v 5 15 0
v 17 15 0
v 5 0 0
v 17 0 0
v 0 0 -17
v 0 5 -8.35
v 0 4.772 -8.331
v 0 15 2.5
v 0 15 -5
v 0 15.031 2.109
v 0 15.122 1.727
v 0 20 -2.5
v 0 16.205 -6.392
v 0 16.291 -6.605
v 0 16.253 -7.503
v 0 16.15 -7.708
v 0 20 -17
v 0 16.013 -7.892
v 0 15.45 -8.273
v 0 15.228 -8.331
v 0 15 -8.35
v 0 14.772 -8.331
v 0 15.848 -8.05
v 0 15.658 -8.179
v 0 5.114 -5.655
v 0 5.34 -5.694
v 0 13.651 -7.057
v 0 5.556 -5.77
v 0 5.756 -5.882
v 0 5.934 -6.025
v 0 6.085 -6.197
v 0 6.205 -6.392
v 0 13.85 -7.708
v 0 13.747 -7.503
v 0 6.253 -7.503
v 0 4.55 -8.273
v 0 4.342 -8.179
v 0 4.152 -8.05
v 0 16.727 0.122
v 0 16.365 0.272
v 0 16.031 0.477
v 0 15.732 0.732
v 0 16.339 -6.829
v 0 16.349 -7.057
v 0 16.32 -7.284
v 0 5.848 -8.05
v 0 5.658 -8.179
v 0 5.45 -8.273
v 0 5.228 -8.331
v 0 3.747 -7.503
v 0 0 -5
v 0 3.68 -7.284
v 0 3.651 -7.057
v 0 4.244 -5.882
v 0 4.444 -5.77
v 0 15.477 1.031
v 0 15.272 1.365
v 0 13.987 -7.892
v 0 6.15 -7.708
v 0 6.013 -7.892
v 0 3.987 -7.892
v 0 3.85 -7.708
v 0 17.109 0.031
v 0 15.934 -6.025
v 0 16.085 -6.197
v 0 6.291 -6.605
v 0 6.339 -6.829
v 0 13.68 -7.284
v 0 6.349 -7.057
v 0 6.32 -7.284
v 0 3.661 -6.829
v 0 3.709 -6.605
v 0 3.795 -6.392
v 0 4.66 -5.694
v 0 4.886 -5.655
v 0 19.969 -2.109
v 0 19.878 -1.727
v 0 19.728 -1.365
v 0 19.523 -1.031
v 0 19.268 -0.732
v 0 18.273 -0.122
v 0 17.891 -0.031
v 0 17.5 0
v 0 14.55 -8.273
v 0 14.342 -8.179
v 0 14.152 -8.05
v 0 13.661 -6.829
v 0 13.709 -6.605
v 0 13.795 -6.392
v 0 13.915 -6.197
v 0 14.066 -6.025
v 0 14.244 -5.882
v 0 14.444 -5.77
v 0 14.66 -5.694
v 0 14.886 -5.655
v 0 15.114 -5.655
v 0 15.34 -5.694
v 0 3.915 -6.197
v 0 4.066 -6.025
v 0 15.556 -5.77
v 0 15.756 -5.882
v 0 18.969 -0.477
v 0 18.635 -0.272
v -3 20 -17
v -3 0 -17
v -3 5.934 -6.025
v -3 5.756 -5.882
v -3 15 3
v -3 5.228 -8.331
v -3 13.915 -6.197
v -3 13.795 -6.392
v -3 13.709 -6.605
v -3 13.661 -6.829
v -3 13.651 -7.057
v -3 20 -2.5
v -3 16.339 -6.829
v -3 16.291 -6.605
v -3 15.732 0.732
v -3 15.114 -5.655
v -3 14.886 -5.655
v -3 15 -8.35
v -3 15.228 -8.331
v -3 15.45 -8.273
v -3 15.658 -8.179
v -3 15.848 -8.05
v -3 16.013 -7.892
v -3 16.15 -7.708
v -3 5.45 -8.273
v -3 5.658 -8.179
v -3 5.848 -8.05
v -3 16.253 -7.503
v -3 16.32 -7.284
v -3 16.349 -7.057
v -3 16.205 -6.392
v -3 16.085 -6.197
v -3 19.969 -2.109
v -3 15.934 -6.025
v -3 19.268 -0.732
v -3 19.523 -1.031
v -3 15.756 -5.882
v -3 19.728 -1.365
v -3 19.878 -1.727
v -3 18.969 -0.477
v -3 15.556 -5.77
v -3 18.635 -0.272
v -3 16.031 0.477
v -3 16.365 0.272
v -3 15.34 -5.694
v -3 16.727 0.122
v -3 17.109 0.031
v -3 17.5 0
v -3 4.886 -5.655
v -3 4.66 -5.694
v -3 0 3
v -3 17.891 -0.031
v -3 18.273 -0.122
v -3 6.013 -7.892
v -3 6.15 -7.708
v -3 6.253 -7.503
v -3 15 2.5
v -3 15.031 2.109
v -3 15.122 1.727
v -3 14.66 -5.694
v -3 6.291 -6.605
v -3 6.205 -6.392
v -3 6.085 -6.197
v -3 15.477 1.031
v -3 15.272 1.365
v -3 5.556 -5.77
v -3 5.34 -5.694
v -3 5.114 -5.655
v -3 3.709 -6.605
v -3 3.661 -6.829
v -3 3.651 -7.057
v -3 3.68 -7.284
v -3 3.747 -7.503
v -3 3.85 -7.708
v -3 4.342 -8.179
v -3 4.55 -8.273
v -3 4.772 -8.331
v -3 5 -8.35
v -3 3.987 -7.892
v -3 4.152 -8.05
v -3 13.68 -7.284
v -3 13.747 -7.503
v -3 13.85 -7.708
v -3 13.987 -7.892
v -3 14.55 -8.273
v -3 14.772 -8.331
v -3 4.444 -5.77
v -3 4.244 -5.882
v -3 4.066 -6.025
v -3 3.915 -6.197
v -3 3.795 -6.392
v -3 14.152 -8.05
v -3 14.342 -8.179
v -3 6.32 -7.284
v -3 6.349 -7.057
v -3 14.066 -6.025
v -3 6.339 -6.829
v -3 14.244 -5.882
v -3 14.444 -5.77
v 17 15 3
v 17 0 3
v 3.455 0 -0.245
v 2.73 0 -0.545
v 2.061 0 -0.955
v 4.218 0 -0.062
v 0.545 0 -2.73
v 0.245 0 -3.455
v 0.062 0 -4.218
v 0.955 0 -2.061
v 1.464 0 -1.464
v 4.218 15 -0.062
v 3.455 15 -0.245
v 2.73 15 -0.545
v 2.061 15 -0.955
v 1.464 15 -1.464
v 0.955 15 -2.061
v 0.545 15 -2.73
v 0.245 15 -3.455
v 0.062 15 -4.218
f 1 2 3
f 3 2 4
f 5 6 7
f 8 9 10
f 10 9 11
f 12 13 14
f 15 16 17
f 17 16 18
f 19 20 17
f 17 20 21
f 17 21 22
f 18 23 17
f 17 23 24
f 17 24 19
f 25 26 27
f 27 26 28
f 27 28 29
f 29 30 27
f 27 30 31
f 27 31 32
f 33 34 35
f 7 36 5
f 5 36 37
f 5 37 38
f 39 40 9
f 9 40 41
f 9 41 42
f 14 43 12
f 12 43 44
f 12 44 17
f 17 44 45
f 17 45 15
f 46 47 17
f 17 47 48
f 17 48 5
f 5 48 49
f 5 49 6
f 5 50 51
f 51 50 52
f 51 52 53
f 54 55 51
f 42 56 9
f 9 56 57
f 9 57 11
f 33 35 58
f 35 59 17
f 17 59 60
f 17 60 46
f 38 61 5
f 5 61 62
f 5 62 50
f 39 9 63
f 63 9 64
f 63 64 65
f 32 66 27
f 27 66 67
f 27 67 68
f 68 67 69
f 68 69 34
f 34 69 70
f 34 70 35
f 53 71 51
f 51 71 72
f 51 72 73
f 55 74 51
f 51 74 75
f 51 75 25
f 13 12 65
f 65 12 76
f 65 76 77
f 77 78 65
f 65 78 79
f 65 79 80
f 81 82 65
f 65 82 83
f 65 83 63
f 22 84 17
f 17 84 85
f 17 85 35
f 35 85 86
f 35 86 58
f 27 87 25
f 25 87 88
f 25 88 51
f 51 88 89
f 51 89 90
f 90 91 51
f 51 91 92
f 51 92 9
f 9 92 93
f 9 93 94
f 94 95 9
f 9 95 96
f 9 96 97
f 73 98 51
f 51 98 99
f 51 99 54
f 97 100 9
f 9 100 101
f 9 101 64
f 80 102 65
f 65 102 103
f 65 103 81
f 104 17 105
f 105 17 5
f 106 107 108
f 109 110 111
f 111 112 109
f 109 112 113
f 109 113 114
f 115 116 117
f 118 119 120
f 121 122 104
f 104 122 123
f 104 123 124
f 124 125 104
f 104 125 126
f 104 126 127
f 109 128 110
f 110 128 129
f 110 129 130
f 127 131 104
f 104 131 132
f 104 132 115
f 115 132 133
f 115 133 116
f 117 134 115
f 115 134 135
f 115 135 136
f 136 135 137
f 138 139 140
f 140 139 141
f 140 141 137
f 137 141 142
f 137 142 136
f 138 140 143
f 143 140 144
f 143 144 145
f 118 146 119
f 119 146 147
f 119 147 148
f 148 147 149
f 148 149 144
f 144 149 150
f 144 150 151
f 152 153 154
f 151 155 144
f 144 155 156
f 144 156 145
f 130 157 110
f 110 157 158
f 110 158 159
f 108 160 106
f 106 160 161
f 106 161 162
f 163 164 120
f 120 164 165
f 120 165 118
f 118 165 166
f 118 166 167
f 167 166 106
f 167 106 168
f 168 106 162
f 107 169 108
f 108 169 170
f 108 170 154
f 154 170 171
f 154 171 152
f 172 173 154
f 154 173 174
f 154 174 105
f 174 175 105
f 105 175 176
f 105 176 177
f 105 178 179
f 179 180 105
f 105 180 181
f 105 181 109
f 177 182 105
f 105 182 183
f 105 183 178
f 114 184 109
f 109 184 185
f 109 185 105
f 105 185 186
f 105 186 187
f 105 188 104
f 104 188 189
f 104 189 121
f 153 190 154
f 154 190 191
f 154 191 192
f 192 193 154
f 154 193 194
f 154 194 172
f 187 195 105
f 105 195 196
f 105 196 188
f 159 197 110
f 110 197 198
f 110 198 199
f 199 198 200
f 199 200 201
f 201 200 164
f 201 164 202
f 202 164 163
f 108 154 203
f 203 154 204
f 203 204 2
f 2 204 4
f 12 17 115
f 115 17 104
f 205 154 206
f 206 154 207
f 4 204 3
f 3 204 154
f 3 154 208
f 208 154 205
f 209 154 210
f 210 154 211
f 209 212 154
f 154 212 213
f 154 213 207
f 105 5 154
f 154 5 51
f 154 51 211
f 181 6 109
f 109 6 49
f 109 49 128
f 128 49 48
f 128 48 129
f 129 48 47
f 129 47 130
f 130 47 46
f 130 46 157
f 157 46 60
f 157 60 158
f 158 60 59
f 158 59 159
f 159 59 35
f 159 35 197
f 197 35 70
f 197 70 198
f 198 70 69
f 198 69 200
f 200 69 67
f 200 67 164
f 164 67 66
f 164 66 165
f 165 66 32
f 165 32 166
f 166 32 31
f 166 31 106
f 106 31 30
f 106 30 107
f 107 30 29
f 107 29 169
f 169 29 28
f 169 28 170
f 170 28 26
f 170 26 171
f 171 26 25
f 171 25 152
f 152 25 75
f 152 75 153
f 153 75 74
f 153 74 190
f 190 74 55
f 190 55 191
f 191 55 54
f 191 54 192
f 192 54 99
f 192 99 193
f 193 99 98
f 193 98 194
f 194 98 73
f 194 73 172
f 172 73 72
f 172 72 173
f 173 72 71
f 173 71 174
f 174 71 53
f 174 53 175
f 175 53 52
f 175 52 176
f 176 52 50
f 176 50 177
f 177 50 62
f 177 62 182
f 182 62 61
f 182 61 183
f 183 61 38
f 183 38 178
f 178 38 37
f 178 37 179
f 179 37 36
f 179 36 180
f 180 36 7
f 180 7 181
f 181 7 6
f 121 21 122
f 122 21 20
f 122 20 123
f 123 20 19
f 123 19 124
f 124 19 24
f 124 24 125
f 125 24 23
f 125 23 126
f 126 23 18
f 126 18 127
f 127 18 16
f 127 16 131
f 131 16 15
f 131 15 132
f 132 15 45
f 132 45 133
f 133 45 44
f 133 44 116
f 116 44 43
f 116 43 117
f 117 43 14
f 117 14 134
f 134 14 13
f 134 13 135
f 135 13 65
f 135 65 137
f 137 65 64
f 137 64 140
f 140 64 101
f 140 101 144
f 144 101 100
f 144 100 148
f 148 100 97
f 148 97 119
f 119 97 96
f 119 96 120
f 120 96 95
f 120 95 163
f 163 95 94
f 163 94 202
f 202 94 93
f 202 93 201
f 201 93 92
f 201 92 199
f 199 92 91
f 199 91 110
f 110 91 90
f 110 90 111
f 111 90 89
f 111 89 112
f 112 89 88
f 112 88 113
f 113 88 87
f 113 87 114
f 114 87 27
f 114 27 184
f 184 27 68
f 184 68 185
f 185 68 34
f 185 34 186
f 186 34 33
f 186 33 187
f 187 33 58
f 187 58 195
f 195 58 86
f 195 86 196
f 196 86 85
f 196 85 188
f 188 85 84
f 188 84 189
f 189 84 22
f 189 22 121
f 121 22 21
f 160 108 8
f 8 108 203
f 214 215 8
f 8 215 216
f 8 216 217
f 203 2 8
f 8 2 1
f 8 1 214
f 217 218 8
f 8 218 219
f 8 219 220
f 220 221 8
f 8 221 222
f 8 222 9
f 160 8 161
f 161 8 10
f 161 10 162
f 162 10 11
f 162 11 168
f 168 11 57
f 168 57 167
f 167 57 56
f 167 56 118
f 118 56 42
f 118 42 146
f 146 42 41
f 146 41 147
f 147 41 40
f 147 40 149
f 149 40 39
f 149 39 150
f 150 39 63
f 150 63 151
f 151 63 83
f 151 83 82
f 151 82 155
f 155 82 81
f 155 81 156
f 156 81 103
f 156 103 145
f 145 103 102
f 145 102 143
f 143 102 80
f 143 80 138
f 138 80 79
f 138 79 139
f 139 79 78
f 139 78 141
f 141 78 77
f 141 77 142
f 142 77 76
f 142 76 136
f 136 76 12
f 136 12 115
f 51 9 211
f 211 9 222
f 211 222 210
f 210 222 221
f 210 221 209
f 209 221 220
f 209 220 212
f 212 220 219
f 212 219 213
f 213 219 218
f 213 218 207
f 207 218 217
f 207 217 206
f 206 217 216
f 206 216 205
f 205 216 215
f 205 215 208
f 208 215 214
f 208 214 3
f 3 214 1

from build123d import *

# Parameters (mm, degrees)
BOSS_EXTRUDE1_DEPTH            = 20
F_2_7_2_7_DIAMETER_HOLE1_D     = 2.7
F_2_7_2_7_DIAMETER_HOLE1_DEPTH = 15
F_2_7_2_7_DIAMETER_HOLE1_TIP   = 0.811161836
SKETCH4_W                      = 20
SKETCH4_H                      = 3
CUT_EXTRUDE1_DEPTH             = 5
FILLET2_R                      = 2.5
FILLET3_R                      = 5


with BuildPart() as part:
    # Sketch1 → Boss-Extrude1 (new body)
    with BuildSketch(Plane(origin=(0, 0, 0), x_dir=(1, 0, 0), z_dir=(0, 1, 0))):
        Polygon((0, 0), (0, 17), (-3, 17), (-3, -3), (17, -3), (17, 0), align=None)
    extrude(amount=BOSS_EXTRUDE1_DEPTH)

    # Ø2.7 (2.7) Diameter Hole1
    with Locations(Plane(origin=(0, 0, 0), x_dir=(0, 0, -1), z_dir=(1, 0, 0))):
        with Locations((7, 5), (7, 15)):
            Hole(F_2_7_2_7_DIAMETER_HOLE1_D / 2, depth=F_2_7_2_7_DIAMETER_HOLE1_DEPTH)
            with Locations((0, 0, -(F_2_7_2_7_DIAMETER_HOLE1_DEPTH + F_2_7_2_7_DIAMETER_HOLE1_TIP / 2))):  # 118° drill point
                Cone(0, F_2_7_2_7_DIAMETER_HOLE1_D / 2, F_2_7_2_7_DIAMETER_HOLE1_TIP, mode=Mode.SUBTRACT)

    # Sketch4 → Cut-Extrude1 (cut)
    with BuildSketch(Plane(origin=(0, 20, 0), x_dir=(1, 0, 0), z_dir=(0, 1, 0))):
        with Locations((7, -1.5)):
            Rectangle(SKETCH4_W, SKETCH4_H)
    extrude(amount=-CUT_EXTRUDE1_DEPTH, mode=Mode.SUBTRACT)

    # Fillet2
    fillet2_edges = [part.edges().sort_by_distance(p)[0] for p in [
        (-1.5, 15, 0),
    ]]
    fillet(fillet2_edges, radius=FILLET2_R)
    fillet2_2_edges = [part.edges().sort_by_distance(p)[0] for p in [
        (-1.5, 20, 0),
    ]]
    fillet(fillet2_2_edges, radius=FILLET2_R - 0.0001)  # a hair under: the kernel refuses the full size

    # Fillet3
    fillet3_edges = [part.edges().sort_by_distance(p)[0] for p in [
        (0, 7.5, 0),
    ]]
    fillet(fillet3_edges, radius=FILLET3_R)


solid = part.part
